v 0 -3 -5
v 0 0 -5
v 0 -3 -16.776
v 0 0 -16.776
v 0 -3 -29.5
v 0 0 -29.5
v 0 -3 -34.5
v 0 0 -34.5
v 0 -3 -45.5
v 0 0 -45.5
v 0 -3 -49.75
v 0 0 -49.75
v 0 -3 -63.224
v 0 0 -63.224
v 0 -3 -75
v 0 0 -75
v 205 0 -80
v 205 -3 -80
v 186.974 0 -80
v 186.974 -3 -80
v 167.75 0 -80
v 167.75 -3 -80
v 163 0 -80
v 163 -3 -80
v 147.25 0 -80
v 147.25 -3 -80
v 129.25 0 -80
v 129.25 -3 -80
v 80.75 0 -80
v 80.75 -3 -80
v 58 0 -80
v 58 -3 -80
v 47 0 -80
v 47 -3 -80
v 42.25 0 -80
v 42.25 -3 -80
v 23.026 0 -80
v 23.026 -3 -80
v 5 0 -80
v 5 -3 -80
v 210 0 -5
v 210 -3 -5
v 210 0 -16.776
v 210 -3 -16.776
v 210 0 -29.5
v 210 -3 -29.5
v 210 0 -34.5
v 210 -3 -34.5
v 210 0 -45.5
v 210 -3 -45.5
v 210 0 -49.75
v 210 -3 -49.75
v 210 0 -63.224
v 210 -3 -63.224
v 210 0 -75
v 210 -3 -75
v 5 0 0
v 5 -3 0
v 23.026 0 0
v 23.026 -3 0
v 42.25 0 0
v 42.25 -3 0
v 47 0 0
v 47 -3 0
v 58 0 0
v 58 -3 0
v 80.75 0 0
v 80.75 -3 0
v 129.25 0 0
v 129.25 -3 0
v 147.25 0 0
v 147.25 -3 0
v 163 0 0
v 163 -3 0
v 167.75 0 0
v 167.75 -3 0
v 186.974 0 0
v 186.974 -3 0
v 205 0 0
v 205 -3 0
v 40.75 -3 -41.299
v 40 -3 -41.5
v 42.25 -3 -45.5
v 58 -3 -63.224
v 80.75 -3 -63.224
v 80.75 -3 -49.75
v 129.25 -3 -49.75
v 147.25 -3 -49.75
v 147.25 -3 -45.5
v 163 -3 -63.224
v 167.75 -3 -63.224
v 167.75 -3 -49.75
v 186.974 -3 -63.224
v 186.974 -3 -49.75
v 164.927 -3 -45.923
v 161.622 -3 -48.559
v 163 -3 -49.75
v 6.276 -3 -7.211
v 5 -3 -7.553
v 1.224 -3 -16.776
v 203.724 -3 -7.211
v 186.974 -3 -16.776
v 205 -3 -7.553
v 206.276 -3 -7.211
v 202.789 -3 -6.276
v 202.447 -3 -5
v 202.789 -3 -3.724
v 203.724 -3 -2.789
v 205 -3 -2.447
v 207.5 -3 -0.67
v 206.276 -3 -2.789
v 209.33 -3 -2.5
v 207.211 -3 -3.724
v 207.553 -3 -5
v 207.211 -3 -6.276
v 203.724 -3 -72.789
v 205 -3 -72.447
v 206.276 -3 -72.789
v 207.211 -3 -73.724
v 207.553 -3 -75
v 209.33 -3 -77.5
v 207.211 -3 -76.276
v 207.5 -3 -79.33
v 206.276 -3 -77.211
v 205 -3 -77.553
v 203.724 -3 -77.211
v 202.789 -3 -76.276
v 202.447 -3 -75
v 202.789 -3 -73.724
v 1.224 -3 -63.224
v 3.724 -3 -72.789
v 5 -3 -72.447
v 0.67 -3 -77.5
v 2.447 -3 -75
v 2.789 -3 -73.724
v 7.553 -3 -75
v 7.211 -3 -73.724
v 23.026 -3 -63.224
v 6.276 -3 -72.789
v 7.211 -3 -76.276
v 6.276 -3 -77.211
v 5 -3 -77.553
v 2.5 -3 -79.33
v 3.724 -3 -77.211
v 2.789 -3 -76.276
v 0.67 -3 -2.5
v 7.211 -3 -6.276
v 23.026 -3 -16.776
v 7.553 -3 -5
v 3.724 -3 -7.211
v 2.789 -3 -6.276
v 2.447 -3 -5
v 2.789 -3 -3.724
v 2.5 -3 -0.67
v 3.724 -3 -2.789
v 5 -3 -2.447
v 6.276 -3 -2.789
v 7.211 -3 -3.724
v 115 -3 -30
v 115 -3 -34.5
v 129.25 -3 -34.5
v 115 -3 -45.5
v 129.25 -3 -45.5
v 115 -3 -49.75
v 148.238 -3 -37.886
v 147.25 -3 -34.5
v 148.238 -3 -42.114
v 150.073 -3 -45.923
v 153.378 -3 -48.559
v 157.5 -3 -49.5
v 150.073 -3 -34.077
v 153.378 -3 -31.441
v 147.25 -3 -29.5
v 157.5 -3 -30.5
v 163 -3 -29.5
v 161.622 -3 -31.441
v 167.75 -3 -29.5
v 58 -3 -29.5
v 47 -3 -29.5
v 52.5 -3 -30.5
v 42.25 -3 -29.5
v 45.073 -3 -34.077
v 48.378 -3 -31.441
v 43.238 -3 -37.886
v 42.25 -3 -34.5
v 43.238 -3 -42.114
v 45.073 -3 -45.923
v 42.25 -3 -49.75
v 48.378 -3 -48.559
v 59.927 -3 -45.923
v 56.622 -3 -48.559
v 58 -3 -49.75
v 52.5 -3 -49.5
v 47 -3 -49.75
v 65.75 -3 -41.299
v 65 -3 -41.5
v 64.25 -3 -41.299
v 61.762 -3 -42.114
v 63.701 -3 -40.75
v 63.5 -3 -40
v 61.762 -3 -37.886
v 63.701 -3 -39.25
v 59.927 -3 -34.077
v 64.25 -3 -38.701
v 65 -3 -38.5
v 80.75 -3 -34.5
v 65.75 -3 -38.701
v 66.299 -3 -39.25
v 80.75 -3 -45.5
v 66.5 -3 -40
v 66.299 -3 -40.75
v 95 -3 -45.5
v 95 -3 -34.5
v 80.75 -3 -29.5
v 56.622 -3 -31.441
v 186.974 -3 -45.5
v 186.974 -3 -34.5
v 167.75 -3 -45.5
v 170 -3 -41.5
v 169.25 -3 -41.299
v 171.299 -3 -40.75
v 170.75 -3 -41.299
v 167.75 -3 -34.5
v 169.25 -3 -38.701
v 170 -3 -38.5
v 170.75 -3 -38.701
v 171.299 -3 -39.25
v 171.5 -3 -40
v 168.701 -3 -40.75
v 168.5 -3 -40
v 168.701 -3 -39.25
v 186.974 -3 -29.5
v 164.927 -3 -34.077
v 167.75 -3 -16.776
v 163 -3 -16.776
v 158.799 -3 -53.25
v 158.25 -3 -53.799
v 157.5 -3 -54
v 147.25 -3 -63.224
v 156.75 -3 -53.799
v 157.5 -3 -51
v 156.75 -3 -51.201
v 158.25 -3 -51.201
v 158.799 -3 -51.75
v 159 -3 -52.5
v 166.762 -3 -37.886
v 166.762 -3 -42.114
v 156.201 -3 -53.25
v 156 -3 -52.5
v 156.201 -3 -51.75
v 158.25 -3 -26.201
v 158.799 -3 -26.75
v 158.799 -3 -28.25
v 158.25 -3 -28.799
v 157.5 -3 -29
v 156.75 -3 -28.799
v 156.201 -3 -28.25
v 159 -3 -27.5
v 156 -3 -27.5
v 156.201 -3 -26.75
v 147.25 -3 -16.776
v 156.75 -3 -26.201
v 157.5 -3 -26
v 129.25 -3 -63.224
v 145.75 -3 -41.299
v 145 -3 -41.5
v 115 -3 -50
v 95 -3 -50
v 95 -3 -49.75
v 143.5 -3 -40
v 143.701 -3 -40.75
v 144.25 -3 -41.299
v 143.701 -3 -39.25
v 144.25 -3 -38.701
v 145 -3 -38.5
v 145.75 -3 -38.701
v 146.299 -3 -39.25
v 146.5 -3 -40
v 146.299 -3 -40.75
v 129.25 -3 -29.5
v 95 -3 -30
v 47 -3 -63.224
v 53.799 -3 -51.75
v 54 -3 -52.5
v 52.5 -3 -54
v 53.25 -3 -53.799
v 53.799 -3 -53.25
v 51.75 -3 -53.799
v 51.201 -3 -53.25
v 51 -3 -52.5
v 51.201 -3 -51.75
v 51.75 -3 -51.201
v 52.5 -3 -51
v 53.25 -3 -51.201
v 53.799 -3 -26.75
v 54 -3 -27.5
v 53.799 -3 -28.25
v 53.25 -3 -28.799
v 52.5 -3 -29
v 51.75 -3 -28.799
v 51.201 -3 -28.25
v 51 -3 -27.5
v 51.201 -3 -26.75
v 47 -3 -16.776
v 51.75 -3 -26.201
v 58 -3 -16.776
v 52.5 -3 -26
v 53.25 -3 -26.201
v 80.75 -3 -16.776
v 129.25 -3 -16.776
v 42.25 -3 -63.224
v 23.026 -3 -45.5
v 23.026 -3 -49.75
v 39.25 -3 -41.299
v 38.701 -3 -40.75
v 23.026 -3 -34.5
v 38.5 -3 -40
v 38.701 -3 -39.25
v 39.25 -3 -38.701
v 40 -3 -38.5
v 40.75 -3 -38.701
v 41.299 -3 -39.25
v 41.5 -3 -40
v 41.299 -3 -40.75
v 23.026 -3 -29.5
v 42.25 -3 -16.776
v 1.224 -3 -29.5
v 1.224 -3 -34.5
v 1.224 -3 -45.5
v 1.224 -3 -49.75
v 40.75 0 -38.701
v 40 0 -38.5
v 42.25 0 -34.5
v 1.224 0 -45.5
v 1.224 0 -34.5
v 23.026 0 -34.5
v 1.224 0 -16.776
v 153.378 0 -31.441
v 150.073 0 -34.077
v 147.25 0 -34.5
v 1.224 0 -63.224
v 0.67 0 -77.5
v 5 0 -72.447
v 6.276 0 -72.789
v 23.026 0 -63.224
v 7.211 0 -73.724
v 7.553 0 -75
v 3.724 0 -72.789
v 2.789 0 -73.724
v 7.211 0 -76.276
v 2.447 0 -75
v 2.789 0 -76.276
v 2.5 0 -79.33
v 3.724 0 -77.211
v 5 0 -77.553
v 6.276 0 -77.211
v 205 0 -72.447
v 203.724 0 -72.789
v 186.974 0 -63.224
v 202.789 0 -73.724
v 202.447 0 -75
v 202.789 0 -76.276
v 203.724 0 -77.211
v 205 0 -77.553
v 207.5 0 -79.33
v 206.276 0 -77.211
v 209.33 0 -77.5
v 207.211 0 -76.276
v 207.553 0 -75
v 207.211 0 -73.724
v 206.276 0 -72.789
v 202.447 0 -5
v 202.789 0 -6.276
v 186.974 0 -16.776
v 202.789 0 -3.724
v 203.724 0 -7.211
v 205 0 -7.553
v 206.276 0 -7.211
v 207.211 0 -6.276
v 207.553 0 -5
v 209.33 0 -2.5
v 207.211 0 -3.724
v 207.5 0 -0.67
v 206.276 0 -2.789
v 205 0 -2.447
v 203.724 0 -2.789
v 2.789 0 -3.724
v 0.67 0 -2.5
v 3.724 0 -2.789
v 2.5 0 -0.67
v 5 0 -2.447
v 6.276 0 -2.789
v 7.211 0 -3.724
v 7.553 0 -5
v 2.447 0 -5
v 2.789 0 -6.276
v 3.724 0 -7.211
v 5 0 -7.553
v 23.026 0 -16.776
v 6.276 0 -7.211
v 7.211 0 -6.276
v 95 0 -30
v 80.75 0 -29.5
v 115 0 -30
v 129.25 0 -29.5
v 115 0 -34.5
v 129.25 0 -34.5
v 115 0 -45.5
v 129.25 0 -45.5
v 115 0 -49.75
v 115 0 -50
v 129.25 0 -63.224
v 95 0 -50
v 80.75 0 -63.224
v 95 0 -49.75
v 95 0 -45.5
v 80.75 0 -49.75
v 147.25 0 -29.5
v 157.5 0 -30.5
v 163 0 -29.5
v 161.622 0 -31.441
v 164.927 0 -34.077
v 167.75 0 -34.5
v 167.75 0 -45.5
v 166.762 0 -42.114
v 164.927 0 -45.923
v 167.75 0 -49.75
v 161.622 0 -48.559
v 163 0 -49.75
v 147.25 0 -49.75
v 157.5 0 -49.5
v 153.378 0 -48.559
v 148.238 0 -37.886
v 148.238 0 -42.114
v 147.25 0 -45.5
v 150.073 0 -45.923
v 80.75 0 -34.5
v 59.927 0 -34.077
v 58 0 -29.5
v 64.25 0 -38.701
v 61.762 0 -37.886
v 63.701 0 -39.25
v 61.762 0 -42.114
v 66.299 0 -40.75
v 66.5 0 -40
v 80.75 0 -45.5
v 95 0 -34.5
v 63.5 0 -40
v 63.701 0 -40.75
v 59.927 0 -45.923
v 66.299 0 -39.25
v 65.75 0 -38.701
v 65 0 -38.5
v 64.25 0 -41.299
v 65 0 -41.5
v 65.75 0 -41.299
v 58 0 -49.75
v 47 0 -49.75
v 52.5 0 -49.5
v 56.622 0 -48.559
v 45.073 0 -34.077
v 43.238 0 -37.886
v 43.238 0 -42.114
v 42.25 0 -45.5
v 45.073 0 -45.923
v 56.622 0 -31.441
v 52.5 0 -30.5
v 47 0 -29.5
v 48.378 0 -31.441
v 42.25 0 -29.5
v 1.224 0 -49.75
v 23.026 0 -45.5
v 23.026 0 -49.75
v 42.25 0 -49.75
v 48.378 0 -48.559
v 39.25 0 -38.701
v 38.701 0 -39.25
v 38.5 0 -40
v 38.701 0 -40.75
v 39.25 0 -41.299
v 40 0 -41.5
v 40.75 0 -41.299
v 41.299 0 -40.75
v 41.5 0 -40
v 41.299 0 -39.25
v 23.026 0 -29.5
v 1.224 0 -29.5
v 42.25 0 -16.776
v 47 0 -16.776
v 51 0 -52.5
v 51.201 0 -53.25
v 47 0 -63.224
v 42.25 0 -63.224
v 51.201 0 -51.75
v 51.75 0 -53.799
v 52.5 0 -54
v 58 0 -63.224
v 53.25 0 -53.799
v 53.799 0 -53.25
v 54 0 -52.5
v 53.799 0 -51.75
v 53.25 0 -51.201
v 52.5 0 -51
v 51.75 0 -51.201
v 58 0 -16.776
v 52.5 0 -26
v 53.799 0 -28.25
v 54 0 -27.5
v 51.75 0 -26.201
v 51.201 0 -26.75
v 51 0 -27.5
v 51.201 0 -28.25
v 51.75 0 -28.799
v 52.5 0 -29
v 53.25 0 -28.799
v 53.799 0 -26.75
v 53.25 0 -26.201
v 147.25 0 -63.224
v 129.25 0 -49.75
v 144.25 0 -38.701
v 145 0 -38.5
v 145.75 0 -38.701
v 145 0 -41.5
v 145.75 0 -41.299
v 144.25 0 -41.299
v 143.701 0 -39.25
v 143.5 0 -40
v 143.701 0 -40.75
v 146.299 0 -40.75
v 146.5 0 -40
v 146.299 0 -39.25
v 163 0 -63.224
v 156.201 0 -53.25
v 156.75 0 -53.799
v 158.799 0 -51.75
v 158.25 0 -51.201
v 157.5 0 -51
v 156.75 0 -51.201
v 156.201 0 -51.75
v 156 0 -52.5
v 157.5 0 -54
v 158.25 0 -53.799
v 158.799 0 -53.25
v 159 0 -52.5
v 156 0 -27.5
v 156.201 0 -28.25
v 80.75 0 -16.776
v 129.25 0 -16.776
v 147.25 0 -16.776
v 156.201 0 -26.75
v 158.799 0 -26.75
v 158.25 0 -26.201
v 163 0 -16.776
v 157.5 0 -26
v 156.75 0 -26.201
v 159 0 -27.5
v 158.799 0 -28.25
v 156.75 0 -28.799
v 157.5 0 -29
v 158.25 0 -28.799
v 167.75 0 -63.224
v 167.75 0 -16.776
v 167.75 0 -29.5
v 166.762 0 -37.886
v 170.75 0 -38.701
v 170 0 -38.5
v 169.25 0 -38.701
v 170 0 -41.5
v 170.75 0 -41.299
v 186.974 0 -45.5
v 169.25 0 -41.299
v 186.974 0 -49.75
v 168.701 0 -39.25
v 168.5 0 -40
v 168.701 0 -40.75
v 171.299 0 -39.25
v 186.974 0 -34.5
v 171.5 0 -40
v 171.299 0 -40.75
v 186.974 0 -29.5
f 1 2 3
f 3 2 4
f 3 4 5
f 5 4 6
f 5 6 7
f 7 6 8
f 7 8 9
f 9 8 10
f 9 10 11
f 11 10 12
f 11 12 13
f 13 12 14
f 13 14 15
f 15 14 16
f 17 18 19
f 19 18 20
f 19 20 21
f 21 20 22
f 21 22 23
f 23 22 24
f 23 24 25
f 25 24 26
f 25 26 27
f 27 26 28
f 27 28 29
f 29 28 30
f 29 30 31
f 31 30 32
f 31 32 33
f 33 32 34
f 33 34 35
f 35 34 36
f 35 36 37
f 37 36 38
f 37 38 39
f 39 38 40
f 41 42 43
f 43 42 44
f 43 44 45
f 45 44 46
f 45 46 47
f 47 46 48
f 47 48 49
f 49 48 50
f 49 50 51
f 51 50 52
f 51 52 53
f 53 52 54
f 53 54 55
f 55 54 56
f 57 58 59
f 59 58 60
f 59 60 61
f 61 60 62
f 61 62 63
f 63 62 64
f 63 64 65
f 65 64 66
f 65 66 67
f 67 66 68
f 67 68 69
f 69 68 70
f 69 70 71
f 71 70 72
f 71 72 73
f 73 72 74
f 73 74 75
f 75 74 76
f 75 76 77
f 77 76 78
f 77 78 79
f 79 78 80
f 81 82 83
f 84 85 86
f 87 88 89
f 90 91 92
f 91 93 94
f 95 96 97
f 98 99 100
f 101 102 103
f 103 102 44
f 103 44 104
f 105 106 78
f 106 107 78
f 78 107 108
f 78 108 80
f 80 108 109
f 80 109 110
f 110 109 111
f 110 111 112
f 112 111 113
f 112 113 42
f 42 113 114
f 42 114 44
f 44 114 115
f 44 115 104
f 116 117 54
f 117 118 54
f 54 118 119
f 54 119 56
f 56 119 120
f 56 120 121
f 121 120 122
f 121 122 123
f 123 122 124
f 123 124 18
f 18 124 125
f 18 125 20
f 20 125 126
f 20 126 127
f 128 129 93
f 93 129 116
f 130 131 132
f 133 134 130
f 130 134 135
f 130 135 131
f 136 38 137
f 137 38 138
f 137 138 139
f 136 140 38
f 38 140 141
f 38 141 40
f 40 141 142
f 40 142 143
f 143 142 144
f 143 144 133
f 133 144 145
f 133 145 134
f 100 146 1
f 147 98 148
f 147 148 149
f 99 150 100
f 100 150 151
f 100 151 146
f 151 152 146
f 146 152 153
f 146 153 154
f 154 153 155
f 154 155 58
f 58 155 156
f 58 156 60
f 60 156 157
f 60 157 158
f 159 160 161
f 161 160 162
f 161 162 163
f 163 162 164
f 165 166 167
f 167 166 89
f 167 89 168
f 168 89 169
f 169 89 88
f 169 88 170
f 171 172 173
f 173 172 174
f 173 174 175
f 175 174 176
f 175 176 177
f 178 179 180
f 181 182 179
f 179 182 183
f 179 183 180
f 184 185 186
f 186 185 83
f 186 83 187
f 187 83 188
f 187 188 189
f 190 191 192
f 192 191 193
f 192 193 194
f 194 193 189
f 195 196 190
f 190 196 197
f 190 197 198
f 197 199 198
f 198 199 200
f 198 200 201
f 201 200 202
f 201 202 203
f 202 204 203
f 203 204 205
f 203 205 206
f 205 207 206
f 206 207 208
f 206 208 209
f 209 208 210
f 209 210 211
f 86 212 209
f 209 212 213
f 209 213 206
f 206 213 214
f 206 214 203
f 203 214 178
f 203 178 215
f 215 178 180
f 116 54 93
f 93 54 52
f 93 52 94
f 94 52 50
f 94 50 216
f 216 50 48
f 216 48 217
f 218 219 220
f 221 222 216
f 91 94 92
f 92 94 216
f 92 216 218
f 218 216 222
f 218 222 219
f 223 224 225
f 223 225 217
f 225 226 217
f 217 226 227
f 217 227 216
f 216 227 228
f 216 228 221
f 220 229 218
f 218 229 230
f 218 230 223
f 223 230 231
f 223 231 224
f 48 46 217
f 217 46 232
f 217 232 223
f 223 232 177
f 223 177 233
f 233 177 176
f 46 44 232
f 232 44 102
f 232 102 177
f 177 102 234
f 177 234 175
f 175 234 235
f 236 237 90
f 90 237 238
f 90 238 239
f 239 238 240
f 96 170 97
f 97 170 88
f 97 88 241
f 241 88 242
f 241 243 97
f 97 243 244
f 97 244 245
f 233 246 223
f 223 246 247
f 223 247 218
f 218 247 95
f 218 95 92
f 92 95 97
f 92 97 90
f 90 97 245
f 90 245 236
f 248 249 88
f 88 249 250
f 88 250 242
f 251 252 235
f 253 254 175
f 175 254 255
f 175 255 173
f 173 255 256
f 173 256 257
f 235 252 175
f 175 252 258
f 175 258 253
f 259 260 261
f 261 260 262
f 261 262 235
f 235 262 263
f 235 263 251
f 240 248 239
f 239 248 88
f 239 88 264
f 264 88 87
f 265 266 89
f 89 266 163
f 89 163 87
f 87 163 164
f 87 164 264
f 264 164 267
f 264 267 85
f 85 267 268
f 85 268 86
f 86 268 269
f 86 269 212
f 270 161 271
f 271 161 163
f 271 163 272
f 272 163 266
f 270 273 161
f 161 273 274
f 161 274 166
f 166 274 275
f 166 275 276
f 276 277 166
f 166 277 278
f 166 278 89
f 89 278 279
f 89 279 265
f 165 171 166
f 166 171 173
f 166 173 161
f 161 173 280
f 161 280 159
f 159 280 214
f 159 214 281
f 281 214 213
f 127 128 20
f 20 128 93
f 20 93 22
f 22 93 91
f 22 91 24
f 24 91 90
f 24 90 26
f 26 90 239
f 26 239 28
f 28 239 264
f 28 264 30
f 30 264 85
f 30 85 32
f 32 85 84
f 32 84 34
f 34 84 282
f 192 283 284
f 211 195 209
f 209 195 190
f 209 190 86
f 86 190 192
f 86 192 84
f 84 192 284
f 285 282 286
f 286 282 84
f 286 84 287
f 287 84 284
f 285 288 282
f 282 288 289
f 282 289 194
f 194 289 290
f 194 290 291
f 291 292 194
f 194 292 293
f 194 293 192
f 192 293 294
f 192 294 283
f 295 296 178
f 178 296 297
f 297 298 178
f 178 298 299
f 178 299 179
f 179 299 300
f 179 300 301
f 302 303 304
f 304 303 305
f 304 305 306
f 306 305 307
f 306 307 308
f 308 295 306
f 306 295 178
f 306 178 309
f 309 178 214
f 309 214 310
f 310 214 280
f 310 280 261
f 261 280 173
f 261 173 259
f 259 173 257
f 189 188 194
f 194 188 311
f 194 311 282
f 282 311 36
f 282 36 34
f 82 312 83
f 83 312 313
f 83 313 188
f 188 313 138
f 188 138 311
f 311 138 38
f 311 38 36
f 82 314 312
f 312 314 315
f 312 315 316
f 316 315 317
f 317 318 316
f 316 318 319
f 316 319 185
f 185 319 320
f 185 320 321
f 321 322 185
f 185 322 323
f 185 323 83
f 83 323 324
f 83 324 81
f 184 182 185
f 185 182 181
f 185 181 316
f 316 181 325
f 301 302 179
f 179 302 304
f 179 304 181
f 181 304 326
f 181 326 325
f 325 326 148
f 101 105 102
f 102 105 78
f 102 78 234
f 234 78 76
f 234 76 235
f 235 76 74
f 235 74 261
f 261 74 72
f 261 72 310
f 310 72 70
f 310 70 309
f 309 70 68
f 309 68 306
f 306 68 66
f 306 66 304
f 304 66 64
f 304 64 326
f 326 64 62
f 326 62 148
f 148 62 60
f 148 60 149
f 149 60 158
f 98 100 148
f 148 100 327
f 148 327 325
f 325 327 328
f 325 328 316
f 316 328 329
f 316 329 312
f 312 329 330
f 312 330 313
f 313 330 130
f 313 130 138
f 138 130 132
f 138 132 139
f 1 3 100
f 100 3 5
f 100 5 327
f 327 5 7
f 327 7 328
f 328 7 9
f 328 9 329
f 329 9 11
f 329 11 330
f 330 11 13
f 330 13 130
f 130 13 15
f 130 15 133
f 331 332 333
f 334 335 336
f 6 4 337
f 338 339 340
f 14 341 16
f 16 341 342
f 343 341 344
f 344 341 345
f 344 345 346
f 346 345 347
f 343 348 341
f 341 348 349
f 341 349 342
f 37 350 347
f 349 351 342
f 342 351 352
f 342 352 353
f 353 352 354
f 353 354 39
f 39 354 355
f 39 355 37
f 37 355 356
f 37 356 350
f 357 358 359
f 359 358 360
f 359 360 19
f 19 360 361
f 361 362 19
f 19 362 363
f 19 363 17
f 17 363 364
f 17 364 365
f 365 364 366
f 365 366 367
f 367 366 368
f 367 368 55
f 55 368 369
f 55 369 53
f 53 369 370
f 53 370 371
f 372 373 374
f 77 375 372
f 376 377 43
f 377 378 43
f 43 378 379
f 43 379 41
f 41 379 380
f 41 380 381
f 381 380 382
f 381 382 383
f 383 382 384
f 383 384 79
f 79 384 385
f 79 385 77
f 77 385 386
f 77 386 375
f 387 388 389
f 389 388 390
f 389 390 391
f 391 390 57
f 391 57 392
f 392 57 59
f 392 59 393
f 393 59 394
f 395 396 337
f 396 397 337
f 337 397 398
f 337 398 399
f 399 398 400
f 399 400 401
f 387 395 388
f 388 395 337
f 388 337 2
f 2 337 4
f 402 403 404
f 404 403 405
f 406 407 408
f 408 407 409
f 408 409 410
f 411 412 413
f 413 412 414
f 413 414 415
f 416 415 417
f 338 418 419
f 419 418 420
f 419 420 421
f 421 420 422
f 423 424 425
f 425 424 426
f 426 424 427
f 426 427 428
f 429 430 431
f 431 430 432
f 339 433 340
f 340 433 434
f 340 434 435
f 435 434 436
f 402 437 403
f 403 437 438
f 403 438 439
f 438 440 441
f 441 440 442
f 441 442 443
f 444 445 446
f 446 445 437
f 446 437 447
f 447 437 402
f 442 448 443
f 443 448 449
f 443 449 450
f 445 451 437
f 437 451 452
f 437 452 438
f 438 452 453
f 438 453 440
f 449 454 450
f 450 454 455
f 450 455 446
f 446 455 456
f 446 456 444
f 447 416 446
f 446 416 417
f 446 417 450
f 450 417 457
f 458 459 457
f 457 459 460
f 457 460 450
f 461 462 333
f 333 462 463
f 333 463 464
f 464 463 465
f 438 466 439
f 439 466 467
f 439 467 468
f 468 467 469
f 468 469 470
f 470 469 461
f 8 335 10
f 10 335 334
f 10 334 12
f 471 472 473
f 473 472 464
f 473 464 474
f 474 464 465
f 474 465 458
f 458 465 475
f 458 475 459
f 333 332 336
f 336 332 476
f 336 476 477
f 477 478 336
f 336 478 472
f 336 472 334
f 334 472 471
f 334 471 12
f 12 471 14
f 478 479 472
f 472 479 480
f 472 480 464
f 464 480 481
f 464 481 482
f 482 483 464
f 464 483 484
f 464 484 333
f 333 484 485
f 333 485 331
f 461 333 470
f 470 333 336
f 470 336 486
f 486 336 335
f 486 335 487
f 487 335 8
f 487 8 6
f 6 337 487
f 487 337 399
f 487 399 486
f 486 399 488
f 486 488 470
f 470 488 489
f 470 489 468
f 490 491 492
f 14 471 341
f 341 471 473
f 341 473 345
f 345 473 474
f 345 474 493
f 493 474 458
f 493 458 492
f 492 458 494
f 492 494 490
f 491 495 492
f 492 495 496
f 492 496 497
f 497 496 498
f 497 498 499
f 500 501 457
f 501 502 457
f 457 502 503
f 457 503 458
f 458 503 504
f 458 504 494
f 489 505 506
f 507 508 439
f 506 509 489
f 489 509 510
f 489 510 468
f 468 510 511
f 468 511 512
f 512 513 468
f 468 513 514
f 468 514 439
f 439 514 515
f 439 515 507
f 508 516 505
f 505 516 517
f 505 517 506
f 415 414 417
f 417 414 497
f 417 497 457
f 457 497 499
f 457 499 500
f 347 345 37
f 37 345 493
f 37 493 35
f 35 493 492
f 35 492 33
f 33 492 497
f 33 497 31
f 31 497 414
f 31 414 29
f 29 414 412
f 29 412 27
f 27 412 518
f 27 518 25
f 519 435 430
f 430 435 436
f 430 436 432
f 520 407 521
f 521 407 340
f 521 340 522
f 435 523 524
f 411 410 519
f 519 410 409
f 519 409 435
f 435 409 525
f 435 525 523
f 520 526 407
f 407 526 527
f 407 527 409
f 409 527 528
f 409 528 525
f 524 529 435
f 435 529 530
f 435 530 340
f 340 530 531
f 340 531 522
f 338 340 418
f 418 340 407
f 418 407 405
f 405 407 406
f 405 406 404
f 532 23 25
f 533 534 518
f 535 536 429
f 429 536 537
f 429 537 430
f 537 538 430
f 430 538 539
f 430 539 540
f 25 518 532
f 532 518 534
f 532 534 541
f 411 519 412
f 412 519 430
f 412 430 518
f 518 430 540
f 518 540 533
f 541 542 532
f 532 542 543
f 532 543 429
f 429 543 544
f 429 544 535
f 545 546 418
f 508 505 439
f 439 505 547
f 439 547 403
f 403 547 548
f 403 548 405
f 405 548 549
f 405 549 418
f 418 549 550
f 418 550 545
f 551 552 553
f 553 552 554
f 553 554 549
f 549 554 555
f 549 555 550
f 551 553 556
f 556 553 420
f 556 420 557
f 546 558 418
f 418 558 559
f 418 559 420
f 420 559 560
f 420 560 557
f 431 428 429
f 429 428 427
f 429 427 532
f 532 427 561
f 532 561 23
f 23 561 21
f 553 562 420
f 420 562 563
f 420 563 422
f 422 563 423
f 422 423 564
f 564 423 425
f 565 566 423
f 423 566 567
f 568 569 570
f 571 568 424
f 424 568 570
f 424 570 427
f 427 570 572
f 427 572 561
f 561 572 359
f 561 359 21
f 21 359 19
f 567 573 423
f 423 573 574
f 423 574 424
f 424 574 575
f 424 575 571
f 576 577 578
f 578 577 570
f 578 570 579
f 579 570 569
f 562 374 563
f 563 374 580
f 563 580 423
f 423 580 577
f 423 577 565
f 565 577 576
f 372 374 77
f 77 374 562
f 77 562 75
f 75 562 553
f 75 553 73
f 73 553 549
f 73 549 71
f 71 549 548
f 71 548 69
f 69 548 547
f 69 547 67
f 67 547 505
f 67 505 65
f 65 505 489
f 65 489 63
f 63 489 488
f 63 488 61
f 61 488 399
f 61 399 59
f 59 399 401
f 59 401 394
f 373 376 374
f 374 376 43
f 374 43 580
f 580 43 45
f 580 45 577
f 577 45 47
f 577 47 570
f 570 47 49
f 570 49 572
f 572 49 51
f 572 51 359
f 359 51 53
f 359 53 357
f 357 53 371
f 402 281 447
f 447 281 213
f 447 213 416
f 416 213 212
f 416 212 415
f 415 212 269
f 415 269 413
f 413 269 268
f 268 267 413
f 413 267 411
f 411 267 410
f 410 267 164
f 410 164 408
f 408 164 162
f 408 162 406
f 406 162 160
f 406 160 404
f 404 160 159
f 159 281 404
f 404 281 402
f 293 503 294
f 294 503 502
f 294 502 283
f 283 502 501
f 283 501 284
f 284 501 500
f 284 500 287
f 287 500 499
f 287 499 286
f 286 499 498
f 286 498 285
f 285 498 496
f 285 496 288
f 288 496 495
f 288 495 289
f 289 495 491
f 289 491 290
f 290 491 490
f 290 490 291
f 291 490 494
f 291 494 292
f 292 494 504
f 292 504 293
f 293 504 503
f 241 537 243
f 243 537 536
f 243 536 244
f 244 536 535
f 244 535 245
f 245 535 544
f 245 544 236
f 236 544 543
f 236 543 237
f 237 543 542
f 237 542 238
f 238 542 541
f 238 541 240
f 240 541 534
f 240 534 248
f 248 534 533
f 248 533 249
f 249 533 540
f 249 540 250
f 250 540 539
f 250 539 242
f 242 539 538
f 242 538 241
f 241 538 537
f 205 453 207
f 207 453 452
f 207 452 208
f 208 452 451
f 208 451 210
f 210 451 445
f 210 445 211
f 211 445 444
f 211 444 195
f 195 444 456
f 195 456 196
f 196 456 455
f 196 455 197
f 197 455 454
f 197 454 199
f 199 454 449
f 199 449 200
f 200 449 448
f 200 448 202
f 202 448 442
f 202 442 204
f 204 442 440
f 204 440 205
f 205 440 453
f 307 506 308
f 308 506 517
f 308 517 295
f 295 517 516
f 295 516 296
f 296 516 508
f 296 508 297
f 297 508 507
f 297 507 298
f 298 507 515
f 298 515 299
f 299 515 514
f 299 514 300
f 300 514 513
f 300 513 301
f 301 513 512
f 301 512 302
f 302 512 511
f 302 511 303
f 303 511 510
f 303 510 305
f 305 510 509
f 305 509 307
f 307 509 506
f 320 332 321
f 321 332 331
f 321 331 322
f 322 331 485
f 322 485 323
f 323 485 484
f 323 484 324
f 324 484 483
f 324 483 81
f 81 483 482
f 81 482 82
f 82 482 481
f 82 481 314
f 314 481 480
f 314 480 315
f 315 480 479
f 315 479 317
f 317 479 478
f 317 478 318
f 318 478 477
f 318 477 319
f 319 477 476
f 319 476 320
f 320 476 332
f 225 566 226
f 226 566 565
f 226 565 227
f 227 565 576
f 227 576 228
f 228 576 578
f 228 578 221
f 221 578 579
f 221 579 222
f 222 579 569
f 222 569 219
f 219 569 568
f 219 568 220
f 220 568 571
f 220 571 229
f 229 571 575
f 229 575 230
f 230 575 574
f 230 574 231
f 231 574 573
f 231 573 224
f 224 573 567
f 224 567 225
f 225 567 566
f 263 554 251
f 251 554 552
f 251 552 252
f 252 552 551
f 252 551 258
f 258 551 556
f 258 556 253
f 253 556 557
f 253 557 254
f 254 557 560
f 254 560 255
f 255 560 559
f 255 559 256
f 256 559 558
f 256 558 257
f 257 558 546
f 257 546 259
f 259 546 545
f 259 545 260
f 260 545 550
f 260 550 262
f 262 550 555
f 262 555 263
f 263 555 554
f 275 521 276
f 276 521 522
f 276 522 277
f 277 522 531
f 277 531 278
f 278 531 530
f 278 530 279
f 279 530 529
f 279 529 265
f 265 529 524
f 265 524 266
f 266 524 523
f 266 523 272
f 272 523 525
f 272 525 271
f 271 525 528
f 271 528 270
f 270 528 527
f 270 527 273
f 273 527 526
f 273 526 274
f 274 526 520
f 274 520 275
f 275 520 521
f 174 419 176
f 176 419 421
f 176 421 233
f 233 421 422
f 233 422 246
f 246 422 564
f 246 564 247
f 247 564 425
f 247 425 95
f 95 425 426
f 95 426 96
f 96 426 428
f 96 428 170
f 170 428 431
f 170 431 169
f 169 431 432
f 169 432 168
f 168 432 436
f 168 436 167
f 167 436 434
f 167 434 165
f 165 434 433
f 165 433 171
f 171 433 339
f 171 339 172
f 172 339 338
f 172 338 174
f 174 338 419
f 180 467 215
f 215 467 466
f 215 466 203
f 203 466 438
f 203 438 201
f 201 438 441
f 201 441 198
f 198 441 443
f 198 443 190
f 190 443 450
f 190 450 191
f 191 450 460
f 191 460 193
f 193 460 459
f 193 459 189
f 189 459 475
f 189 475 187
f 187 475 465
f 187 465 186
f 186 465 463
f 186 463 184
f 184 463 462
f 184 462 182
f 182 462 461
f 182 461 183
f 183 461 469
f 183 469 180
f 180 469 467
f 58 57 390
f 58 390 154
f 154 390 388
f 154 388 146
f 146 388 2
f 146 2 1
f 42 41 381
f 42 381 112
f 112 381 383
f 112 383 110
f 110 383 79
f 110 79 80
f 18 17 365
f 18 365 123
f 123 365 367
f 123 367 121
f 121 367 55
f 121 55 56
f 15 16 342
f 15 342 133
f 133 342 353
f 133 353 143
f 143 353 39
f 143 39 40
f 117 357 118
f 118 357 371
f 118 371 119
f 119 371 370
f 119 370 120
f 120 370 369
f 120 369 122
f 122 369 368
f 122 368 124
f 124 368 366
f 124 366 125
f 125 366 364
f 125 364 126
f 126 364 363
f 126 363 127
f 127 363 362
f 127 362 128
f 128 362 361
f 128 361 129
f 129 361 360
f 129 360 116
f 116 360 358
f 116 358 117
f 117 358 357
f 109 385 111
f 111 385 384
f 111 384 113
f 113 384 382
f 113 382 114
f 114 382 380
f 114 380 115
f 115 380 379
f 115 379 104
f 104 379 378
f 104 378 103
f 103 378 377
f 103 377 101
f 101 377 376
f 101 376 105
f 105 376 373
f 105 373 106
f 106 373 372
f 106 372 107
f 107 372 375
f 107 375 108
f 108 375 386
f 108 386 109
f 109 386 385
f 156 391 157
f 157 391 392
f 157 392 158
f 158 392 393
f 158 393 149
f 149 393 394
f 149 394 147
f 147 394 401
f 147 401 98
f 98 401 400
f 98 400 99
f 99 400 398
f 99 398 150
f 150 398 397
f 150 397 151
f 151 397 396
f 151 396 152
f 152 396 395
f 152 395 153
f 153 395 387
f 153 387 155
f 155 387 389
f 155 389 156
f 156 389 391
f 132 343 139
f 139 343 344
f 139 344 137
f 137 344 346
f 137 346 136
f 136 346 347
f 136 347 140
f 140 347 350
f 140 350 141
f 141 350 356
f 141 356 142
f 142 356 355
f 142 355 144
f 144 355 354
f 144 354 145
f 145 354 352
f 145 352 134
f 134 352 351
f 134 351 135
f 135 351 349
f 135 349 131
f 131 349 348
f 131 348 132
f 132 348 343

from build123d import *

# Parameters (mm, degrees)
SKETCH1_W               = 210
SKETCH1_H               = 80
SKETCH1_R               = 1.5
SKETCH1_R_2             = 9.5
SKETCH1_W_2             = 20
SKETCH1_H_2             = 20
BOSS_EXTRUDE1_DEPTH     = 3
FILLET1_R               = 5
F_1_4_20_TAPPED_HOLE1_D = 5.1054


with BuildPart() as part:
    # Sketch1 → Boss-Extrude1 (new body)
    with BuildSketch(Plane(origin=(0, 0, 0), x_dir=(1, 0, 0), z_dir=(0, 1, 0))):
        with Locations((105, 40)):
            Rectangle(SKETCH1_W, SKETCH1_H)
        with Locations(Location((52.5, 52.5, 0), (0, 0, 270))):
            Circle(SKETCH1_R, mode=Mode.SUBTRACT)
        with Locations(Location((65, 40, 0), (0, 0, 270))):
            Circle(SKETCH1_R, mode=Mode.SUBTRACT)
        with Locations(Location((52.5, 27.5, 0), (0, 0, 270))):
            Circle(SKETCH1_R, mode=Mode.SUBTRACT)
        with Locations(Location((40, 40, 0), (0, 0, 270))):
            Circle(SKETCH1_R, mode=Mode.SUBTRACT)
        with Locations(Location((157.5, 52.5, 0), (0, 0, 270))):
            Circle(SKETCH1_R, mode=Mode.SUBTRACT)
        with Locations(Location((170, 40, 0), (0, 0, 270))):
            Circle(SKETCH1_R, mode=Mode.SUBTRACT)
        with Locations(Location((157.5, 27.5, 0), (0, 0, 270))):
            Circle(SKETCH1_R, mode=Mode.SUBTRACT)
        with Locations(Location((145, 40, 0), (0, 0, 270))):
            Circle(SKETCH1_R, mode=Mode.SUBTRACT)
        with Locations(Location((52.5, 40, 0), (0, 0, 270))):
            Circle(SKETCH1_R_2, mode=Mode.SUBTRACT)
        with Locations(Location((157.5, 40, 0), (0, 0, 270))):
            Circle(SKETCH1_R_2, mode=Mode.SUBTRACT)
        with Locations((105, 40)):
            Rectangle(SKETCH1_W_2, SKETCH1_H_2, mode=Mode.SUBTRACT)
    extrude(amount=-BOSS_EXTRUDE1_DEPTH)

    # Fillet1
    fillet1_edges = [part.edges().sort_by_distance(p)[0] for p in [
        (0, -1.5, -80),
        (210, -1.5, -80),
        (210, -1.5, 0),
        (0, -1.5, 0),
    ]]
    fillet(fillet1_edges, radius=FILLET1_R)

    # 1/4-20 Tapped Hole1 (through all)
    with Locations(Plane(origin=(0, 0, 0), x_dir=(1, 0, 0), z_dir=(0, 1, 0))):
        with Locations((5, 75), (5, 5), (205, 5), (205, 75)):
            Hole(F_1_4_20_TAPPED_HOLE1_D / 2)


solid = part.part
